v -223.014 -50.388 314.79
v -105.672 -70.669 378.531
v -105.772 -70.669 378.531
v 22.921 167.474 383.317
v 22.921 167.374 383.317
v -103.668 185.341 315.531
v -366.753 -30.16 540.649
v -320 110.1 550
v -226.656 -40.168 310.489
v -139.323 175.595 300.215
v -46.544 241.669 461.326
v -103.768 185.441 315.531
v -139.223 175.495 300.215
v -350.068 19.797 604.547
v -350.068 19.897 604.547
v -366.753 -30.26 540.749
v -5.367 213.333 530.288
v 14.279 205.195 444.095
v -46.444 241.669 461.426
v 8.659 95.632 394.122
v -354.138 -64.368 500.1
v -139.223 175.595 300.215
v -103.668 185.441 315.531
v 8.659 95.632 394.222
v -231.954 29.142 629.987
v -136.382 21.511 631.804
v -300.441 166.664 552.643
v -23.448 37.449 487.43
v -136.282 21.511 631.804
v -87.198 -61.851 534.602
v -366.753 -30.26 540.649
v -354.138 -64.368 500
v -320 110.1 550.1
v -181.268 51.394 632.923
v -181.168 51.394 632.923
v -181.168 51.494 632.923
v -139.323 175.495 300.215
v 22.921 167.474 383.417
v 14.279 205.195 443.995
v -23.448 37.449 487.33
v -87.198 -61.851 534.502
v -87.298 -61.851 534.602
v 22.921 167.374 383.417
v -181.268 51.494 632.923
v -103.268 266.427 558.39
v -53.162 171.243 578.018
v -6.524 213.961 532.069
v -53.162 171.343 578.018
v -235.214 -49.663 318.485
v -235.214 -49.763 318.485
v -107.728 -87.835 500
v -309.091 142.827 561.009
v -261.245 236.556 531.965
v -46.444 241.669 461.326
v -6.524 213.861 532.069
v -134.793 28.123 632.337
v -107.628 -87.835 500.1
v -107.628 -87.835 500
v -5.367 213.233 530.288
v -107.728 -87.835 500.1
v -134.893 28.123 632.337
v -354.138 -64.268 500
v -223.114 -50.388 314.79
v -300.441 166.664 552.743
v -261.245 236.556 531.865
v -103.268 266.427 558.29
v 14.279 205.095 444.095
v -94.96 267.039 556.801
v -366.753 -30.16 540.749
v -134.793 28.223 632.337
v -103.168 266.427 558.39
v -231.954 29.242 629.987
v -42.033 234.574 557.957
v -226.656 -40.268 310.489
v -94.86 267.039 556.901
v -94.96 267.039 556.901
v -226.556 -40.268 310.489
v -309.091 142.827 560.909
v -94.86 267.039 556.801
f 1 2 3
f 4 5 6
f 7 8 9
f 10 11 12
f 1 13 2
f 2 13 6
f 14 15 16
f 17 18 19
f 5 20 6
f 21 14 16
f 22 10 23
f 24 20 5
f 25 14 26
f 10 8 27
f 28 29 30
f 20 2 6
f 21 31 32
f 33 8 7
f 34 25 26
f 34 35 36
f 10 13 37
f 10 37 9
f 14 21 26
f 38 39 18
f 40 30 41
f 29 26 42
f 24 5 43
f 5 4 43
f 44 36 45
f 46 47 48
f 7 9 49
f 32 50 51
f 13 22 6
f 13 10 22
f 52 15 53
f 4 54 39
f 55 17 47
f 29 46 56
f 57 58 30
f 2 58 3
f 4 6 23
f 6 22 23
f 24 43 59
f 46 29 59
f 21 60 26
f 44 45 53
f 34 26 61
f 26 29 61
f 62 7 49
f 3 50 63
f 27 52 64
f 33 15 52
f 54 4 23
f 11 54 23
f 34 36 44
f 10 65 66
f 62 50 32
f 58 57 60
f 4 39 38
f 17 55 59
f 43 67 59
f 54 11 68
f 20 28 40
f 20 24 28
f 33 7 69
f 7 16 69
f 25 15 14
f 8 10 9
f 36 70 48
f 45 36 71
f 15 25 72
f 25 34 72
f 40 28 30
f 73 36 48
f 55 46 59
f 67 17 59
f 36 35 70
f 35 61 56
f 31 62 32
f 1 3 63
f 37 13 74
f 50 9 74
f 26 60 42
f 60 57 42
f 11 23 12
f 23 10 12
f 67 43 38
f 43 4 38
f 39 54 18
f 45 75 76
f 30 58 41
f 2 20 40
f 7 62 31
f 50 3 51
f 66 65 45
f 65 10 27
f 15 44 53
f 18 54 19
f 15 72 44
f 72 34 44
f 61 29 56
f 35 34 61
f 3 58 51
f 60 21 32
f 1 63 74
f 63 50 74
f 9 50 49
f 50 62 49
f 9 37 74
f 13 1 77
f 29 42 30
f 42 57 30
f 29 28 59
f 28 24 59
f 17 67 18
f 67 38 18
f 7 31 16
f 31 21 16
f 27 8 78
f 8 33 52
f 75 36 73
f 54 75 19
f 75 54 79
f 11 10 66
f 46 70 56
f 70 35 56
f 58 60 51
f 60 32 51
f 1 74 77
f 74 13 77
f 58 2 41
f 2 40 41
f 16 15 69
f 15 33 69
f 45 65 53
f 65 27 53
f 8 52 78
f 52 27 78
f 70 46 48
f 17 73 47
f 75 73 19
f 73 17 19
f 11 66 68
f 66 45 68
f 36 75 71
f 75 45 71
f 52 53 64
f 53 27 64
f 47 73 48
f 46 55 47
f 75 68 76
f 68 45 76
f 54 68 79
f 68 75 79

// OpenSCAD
hull(){ translate([8.5593220339,95.6317411402,394.121725732])cube(0.1,0.1,0.1);
translate([-139.323432343,175.495049505,300.214521452])cube(0.1,0.1,0.1);
translate([-105.772413793,-70.6689655172,378.531034483])cube(0.1,0.1,0.1);
translate([-261.244503078,236.455584872,531.864555849])cube(0.1,0.1,0.1);
translate([-181.268132897,51.3944782405,632.822882546])cube(0.1,0.1,0.1);
translate([-42.1328720207,234.474383169,557.85734256])cube(0.1,0.1,0.1);
translate([-94.9598393574,266.938955823,556.800803213])cube(0.1,0.1,0.1);
translate([-103.268261965,266.327455919,558.289672544])cube(0.1,0.1,0.1);
translate([-107.728085868,-87.8354203936,500.0])cube(0.1,0.1,0.1);
translate([-366.753246753,-30.2597402597,540.649350649])cube(0.1,0.1,0.1);
translate([-354.137931034,-64.367816092,500.0])cube(0.1,0.1,0.1);
translate([-350.06772009,19.7968397291,604.446952596])cube(0.1,0.1,0.1);
translate([-231.954125707,29.1420911528,629.886803694])cube(0.1,0.1,0.1);
translate([-103.767772512,185.341232227,315.530805687])cube(0.1,0.1,0.1);
translate([-46.544499596,241.569317788,461.325753203])cube(0.1,0.1,0.1);
translate([22.8212881766,167.373752646,383.317205927])cube(0.1,0.1,0.1);
translate([14.1786877617,205.095102373,443.995463006])cube(0.1,0.1,0.1);
translate([-320.0,110.0,550.0])cube(0.1,0.1,0.1);
translate([-300.440528634,166.563876652,552.643171806])cube(0.1,0.1,0.1);
translate([-309.090909091,142.727272727,560.909090909])cube(0.1,0.1,0.1);
translate([-226.65615142,-40.2681388013,310.488958991])cube(0.1,0.1,0.1);
translate([-235.214146658,-49.7631408177,318.484750162])cube(0.1,0.1,0.1);
translate([-223.114323259,-50.3876478318,314.789750329])cube(0.1,0.1,0.1);
translate([-5.46747803659,213.232852422,530.18820021])cube(0.1,0.1,0.1);
translate([-6.62349920713,213.861285207,531.968964736])cube(0.1,0.1,0.1);
translate([-23.5480781509,37.4492401992,487.33048142])cube(0.1,0.1,0.1);
translate([-87.2983162311,-61.8507284993,534.502239356])cube(0.1,0.1,0.1);
translate([-53.2621213866,171.243233905,577.918346194])cube(0.1,0.1,0.1);
translate([-134.892546478,28.1229745864,632.236909432])cube(0.1,0.1,0.1);
translate([-136.381868971,21.5108463184,631.70376675])cube(0.1,0.1,0.1); }
